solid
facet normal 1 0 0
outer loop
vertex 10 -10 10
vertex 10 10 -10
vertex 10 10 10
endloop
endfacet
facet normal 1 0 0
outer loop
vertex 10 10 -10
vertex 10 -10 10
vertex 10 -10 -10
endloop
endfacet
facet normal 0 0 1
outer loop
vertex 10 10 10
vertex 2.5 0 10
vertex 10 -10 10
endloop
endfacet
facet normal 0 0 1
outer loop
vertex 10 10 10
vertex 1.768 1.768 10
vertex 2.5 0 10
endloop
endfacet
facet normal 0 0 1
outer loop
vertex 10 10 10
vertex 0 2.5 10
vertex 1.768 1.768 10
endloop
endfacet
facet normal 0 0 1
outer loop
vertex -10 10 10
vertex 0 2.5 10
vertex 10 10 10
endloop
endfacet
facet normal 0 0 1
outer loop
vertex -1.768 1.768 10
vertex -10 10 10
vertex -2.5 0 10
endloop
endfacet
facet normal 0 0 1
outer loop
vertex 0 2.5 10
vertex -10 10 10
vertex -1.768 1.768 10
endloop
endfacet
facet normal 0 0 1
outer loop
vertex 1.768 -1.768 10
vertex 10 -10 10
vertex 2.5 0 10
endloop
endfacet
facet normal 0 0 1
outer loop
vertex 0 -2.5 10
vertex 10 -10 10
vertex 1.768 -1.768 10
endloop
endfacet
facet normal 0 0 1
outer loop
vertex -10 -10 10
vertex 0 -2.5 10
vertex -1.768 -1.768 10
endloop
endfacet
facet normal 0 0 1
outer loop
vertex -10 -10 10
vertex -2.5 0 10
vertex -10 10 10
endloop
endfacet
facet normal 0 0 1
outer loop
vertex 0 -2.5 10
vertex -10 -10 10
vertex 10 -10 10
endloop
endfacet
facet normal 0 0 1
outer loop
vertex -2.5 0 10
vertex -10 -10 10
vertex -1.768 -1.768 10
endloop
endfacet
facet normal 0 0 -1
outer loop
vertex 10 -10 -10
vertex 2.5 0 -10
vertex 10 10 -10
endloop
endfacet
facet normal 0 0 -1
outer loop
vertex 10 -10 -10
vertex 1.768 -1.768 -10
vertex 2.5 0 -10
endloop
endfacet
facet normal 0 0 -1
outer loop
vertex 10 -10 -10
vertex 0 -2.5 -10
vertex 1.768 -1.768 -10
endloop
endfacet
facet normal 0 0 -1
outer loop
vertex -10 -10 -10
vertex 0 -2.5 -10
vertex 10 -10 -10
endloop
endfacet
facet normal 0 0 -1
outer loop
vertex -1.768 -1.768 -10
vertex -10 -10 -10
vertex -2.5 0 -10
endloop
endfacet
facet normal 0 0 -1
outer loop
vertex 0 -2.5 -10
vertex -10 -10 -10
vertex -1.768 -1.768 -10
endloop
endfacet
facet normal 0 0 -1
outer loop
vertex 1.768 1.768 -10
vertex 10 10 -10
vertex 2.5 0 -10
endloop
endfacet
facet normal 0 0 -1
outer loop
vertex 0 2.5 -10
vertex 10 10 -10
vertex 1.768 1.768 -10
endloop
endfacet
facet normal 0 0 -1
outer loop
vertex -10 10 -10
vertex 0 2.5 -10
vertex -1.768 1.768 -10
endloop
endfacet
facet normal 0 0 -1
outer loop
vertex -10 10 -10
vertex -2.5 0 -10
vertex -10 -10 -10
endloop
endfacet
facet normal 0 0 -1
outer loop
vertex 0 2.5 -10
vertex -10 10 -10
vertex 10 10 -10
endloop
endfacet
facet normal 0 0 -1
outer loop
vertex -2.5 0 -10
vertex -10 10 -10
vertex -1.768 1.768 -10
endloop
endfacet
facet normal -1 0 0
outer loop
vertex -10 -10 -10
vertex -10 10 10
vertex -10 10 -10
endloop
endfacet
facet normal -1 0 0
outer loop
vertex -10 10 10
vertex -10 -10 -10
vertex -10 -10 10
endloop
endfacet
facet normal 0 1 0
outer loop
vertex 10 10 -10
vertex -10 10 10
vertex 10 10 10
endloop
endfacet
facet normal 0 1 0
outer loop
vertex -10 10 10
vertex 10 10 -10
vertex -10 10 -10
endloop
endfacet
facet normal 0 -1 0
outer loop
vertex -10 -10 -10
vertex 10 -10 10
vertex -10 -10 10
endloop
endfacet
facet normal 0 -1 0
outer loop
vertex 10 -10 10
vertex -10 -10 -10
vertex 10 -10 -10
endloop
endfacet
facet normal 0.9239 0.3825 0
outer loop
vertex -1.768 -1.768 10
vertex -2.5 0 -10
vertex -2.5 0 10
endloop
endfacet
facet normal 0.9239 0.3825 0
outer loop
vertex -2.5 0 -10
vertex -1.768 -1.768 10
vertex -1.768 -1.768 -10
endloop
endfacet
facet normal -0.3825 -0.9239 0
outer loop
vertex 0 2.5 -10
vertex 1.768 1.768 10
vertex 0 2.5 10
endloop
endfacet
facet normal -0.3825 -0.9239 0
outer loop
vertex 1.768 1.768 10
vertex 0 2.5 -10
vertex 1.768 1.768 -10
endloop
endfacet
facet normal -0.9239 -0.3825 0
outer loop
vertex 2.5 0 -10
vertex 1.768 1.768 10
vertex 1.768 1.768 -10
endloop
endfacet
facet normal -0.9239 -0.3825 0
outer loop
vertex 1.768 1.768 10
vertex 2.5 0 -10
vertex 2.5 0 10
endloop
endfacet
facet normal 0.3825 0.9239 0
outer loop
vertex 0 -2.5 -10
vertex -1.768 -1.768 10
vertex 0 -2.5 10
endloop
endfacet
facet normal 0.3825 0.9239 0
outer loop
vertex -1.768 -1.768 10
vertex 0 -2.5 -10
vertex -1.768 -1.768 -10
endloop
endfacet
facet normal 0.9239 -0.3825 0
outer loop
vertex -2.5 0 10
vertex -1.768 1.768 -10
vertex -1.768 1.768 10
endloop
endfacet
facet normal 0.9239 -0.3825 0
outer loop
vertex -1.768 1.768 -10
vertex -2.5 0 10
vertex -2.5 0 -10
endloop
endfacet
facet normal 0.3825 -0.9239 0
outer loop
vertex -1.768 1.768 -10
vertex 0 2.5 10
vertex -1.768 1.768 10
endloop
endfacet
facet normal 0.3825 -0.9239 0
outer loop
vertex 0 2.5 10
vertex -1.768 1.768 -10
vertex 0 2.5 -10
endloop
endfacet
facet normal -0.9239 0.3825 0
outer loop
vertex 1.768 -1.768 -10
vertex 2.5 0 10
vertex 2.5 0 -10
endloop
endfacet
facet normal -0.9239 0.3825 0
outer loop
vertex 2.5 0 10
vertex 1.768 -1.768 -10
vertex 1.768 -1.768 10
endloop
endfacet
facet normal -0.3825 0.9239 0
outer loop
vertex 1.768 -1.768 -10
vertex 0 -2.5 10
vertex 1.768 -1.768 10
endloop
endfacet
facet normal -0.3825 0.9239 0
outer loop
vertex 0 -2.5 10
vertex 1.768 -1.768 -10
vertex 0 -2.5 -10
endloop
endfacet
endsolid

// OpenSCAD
// Calibration cube: 20 mm test block with optional center hole
module calibration_cube(size=20, hole_diameter=5) {
    difference() {
        cube([size, size, size], center=true);
        cylinder(h=size + 2, d=hole_diameter, center=true);
    }
}

calibration_cube();
